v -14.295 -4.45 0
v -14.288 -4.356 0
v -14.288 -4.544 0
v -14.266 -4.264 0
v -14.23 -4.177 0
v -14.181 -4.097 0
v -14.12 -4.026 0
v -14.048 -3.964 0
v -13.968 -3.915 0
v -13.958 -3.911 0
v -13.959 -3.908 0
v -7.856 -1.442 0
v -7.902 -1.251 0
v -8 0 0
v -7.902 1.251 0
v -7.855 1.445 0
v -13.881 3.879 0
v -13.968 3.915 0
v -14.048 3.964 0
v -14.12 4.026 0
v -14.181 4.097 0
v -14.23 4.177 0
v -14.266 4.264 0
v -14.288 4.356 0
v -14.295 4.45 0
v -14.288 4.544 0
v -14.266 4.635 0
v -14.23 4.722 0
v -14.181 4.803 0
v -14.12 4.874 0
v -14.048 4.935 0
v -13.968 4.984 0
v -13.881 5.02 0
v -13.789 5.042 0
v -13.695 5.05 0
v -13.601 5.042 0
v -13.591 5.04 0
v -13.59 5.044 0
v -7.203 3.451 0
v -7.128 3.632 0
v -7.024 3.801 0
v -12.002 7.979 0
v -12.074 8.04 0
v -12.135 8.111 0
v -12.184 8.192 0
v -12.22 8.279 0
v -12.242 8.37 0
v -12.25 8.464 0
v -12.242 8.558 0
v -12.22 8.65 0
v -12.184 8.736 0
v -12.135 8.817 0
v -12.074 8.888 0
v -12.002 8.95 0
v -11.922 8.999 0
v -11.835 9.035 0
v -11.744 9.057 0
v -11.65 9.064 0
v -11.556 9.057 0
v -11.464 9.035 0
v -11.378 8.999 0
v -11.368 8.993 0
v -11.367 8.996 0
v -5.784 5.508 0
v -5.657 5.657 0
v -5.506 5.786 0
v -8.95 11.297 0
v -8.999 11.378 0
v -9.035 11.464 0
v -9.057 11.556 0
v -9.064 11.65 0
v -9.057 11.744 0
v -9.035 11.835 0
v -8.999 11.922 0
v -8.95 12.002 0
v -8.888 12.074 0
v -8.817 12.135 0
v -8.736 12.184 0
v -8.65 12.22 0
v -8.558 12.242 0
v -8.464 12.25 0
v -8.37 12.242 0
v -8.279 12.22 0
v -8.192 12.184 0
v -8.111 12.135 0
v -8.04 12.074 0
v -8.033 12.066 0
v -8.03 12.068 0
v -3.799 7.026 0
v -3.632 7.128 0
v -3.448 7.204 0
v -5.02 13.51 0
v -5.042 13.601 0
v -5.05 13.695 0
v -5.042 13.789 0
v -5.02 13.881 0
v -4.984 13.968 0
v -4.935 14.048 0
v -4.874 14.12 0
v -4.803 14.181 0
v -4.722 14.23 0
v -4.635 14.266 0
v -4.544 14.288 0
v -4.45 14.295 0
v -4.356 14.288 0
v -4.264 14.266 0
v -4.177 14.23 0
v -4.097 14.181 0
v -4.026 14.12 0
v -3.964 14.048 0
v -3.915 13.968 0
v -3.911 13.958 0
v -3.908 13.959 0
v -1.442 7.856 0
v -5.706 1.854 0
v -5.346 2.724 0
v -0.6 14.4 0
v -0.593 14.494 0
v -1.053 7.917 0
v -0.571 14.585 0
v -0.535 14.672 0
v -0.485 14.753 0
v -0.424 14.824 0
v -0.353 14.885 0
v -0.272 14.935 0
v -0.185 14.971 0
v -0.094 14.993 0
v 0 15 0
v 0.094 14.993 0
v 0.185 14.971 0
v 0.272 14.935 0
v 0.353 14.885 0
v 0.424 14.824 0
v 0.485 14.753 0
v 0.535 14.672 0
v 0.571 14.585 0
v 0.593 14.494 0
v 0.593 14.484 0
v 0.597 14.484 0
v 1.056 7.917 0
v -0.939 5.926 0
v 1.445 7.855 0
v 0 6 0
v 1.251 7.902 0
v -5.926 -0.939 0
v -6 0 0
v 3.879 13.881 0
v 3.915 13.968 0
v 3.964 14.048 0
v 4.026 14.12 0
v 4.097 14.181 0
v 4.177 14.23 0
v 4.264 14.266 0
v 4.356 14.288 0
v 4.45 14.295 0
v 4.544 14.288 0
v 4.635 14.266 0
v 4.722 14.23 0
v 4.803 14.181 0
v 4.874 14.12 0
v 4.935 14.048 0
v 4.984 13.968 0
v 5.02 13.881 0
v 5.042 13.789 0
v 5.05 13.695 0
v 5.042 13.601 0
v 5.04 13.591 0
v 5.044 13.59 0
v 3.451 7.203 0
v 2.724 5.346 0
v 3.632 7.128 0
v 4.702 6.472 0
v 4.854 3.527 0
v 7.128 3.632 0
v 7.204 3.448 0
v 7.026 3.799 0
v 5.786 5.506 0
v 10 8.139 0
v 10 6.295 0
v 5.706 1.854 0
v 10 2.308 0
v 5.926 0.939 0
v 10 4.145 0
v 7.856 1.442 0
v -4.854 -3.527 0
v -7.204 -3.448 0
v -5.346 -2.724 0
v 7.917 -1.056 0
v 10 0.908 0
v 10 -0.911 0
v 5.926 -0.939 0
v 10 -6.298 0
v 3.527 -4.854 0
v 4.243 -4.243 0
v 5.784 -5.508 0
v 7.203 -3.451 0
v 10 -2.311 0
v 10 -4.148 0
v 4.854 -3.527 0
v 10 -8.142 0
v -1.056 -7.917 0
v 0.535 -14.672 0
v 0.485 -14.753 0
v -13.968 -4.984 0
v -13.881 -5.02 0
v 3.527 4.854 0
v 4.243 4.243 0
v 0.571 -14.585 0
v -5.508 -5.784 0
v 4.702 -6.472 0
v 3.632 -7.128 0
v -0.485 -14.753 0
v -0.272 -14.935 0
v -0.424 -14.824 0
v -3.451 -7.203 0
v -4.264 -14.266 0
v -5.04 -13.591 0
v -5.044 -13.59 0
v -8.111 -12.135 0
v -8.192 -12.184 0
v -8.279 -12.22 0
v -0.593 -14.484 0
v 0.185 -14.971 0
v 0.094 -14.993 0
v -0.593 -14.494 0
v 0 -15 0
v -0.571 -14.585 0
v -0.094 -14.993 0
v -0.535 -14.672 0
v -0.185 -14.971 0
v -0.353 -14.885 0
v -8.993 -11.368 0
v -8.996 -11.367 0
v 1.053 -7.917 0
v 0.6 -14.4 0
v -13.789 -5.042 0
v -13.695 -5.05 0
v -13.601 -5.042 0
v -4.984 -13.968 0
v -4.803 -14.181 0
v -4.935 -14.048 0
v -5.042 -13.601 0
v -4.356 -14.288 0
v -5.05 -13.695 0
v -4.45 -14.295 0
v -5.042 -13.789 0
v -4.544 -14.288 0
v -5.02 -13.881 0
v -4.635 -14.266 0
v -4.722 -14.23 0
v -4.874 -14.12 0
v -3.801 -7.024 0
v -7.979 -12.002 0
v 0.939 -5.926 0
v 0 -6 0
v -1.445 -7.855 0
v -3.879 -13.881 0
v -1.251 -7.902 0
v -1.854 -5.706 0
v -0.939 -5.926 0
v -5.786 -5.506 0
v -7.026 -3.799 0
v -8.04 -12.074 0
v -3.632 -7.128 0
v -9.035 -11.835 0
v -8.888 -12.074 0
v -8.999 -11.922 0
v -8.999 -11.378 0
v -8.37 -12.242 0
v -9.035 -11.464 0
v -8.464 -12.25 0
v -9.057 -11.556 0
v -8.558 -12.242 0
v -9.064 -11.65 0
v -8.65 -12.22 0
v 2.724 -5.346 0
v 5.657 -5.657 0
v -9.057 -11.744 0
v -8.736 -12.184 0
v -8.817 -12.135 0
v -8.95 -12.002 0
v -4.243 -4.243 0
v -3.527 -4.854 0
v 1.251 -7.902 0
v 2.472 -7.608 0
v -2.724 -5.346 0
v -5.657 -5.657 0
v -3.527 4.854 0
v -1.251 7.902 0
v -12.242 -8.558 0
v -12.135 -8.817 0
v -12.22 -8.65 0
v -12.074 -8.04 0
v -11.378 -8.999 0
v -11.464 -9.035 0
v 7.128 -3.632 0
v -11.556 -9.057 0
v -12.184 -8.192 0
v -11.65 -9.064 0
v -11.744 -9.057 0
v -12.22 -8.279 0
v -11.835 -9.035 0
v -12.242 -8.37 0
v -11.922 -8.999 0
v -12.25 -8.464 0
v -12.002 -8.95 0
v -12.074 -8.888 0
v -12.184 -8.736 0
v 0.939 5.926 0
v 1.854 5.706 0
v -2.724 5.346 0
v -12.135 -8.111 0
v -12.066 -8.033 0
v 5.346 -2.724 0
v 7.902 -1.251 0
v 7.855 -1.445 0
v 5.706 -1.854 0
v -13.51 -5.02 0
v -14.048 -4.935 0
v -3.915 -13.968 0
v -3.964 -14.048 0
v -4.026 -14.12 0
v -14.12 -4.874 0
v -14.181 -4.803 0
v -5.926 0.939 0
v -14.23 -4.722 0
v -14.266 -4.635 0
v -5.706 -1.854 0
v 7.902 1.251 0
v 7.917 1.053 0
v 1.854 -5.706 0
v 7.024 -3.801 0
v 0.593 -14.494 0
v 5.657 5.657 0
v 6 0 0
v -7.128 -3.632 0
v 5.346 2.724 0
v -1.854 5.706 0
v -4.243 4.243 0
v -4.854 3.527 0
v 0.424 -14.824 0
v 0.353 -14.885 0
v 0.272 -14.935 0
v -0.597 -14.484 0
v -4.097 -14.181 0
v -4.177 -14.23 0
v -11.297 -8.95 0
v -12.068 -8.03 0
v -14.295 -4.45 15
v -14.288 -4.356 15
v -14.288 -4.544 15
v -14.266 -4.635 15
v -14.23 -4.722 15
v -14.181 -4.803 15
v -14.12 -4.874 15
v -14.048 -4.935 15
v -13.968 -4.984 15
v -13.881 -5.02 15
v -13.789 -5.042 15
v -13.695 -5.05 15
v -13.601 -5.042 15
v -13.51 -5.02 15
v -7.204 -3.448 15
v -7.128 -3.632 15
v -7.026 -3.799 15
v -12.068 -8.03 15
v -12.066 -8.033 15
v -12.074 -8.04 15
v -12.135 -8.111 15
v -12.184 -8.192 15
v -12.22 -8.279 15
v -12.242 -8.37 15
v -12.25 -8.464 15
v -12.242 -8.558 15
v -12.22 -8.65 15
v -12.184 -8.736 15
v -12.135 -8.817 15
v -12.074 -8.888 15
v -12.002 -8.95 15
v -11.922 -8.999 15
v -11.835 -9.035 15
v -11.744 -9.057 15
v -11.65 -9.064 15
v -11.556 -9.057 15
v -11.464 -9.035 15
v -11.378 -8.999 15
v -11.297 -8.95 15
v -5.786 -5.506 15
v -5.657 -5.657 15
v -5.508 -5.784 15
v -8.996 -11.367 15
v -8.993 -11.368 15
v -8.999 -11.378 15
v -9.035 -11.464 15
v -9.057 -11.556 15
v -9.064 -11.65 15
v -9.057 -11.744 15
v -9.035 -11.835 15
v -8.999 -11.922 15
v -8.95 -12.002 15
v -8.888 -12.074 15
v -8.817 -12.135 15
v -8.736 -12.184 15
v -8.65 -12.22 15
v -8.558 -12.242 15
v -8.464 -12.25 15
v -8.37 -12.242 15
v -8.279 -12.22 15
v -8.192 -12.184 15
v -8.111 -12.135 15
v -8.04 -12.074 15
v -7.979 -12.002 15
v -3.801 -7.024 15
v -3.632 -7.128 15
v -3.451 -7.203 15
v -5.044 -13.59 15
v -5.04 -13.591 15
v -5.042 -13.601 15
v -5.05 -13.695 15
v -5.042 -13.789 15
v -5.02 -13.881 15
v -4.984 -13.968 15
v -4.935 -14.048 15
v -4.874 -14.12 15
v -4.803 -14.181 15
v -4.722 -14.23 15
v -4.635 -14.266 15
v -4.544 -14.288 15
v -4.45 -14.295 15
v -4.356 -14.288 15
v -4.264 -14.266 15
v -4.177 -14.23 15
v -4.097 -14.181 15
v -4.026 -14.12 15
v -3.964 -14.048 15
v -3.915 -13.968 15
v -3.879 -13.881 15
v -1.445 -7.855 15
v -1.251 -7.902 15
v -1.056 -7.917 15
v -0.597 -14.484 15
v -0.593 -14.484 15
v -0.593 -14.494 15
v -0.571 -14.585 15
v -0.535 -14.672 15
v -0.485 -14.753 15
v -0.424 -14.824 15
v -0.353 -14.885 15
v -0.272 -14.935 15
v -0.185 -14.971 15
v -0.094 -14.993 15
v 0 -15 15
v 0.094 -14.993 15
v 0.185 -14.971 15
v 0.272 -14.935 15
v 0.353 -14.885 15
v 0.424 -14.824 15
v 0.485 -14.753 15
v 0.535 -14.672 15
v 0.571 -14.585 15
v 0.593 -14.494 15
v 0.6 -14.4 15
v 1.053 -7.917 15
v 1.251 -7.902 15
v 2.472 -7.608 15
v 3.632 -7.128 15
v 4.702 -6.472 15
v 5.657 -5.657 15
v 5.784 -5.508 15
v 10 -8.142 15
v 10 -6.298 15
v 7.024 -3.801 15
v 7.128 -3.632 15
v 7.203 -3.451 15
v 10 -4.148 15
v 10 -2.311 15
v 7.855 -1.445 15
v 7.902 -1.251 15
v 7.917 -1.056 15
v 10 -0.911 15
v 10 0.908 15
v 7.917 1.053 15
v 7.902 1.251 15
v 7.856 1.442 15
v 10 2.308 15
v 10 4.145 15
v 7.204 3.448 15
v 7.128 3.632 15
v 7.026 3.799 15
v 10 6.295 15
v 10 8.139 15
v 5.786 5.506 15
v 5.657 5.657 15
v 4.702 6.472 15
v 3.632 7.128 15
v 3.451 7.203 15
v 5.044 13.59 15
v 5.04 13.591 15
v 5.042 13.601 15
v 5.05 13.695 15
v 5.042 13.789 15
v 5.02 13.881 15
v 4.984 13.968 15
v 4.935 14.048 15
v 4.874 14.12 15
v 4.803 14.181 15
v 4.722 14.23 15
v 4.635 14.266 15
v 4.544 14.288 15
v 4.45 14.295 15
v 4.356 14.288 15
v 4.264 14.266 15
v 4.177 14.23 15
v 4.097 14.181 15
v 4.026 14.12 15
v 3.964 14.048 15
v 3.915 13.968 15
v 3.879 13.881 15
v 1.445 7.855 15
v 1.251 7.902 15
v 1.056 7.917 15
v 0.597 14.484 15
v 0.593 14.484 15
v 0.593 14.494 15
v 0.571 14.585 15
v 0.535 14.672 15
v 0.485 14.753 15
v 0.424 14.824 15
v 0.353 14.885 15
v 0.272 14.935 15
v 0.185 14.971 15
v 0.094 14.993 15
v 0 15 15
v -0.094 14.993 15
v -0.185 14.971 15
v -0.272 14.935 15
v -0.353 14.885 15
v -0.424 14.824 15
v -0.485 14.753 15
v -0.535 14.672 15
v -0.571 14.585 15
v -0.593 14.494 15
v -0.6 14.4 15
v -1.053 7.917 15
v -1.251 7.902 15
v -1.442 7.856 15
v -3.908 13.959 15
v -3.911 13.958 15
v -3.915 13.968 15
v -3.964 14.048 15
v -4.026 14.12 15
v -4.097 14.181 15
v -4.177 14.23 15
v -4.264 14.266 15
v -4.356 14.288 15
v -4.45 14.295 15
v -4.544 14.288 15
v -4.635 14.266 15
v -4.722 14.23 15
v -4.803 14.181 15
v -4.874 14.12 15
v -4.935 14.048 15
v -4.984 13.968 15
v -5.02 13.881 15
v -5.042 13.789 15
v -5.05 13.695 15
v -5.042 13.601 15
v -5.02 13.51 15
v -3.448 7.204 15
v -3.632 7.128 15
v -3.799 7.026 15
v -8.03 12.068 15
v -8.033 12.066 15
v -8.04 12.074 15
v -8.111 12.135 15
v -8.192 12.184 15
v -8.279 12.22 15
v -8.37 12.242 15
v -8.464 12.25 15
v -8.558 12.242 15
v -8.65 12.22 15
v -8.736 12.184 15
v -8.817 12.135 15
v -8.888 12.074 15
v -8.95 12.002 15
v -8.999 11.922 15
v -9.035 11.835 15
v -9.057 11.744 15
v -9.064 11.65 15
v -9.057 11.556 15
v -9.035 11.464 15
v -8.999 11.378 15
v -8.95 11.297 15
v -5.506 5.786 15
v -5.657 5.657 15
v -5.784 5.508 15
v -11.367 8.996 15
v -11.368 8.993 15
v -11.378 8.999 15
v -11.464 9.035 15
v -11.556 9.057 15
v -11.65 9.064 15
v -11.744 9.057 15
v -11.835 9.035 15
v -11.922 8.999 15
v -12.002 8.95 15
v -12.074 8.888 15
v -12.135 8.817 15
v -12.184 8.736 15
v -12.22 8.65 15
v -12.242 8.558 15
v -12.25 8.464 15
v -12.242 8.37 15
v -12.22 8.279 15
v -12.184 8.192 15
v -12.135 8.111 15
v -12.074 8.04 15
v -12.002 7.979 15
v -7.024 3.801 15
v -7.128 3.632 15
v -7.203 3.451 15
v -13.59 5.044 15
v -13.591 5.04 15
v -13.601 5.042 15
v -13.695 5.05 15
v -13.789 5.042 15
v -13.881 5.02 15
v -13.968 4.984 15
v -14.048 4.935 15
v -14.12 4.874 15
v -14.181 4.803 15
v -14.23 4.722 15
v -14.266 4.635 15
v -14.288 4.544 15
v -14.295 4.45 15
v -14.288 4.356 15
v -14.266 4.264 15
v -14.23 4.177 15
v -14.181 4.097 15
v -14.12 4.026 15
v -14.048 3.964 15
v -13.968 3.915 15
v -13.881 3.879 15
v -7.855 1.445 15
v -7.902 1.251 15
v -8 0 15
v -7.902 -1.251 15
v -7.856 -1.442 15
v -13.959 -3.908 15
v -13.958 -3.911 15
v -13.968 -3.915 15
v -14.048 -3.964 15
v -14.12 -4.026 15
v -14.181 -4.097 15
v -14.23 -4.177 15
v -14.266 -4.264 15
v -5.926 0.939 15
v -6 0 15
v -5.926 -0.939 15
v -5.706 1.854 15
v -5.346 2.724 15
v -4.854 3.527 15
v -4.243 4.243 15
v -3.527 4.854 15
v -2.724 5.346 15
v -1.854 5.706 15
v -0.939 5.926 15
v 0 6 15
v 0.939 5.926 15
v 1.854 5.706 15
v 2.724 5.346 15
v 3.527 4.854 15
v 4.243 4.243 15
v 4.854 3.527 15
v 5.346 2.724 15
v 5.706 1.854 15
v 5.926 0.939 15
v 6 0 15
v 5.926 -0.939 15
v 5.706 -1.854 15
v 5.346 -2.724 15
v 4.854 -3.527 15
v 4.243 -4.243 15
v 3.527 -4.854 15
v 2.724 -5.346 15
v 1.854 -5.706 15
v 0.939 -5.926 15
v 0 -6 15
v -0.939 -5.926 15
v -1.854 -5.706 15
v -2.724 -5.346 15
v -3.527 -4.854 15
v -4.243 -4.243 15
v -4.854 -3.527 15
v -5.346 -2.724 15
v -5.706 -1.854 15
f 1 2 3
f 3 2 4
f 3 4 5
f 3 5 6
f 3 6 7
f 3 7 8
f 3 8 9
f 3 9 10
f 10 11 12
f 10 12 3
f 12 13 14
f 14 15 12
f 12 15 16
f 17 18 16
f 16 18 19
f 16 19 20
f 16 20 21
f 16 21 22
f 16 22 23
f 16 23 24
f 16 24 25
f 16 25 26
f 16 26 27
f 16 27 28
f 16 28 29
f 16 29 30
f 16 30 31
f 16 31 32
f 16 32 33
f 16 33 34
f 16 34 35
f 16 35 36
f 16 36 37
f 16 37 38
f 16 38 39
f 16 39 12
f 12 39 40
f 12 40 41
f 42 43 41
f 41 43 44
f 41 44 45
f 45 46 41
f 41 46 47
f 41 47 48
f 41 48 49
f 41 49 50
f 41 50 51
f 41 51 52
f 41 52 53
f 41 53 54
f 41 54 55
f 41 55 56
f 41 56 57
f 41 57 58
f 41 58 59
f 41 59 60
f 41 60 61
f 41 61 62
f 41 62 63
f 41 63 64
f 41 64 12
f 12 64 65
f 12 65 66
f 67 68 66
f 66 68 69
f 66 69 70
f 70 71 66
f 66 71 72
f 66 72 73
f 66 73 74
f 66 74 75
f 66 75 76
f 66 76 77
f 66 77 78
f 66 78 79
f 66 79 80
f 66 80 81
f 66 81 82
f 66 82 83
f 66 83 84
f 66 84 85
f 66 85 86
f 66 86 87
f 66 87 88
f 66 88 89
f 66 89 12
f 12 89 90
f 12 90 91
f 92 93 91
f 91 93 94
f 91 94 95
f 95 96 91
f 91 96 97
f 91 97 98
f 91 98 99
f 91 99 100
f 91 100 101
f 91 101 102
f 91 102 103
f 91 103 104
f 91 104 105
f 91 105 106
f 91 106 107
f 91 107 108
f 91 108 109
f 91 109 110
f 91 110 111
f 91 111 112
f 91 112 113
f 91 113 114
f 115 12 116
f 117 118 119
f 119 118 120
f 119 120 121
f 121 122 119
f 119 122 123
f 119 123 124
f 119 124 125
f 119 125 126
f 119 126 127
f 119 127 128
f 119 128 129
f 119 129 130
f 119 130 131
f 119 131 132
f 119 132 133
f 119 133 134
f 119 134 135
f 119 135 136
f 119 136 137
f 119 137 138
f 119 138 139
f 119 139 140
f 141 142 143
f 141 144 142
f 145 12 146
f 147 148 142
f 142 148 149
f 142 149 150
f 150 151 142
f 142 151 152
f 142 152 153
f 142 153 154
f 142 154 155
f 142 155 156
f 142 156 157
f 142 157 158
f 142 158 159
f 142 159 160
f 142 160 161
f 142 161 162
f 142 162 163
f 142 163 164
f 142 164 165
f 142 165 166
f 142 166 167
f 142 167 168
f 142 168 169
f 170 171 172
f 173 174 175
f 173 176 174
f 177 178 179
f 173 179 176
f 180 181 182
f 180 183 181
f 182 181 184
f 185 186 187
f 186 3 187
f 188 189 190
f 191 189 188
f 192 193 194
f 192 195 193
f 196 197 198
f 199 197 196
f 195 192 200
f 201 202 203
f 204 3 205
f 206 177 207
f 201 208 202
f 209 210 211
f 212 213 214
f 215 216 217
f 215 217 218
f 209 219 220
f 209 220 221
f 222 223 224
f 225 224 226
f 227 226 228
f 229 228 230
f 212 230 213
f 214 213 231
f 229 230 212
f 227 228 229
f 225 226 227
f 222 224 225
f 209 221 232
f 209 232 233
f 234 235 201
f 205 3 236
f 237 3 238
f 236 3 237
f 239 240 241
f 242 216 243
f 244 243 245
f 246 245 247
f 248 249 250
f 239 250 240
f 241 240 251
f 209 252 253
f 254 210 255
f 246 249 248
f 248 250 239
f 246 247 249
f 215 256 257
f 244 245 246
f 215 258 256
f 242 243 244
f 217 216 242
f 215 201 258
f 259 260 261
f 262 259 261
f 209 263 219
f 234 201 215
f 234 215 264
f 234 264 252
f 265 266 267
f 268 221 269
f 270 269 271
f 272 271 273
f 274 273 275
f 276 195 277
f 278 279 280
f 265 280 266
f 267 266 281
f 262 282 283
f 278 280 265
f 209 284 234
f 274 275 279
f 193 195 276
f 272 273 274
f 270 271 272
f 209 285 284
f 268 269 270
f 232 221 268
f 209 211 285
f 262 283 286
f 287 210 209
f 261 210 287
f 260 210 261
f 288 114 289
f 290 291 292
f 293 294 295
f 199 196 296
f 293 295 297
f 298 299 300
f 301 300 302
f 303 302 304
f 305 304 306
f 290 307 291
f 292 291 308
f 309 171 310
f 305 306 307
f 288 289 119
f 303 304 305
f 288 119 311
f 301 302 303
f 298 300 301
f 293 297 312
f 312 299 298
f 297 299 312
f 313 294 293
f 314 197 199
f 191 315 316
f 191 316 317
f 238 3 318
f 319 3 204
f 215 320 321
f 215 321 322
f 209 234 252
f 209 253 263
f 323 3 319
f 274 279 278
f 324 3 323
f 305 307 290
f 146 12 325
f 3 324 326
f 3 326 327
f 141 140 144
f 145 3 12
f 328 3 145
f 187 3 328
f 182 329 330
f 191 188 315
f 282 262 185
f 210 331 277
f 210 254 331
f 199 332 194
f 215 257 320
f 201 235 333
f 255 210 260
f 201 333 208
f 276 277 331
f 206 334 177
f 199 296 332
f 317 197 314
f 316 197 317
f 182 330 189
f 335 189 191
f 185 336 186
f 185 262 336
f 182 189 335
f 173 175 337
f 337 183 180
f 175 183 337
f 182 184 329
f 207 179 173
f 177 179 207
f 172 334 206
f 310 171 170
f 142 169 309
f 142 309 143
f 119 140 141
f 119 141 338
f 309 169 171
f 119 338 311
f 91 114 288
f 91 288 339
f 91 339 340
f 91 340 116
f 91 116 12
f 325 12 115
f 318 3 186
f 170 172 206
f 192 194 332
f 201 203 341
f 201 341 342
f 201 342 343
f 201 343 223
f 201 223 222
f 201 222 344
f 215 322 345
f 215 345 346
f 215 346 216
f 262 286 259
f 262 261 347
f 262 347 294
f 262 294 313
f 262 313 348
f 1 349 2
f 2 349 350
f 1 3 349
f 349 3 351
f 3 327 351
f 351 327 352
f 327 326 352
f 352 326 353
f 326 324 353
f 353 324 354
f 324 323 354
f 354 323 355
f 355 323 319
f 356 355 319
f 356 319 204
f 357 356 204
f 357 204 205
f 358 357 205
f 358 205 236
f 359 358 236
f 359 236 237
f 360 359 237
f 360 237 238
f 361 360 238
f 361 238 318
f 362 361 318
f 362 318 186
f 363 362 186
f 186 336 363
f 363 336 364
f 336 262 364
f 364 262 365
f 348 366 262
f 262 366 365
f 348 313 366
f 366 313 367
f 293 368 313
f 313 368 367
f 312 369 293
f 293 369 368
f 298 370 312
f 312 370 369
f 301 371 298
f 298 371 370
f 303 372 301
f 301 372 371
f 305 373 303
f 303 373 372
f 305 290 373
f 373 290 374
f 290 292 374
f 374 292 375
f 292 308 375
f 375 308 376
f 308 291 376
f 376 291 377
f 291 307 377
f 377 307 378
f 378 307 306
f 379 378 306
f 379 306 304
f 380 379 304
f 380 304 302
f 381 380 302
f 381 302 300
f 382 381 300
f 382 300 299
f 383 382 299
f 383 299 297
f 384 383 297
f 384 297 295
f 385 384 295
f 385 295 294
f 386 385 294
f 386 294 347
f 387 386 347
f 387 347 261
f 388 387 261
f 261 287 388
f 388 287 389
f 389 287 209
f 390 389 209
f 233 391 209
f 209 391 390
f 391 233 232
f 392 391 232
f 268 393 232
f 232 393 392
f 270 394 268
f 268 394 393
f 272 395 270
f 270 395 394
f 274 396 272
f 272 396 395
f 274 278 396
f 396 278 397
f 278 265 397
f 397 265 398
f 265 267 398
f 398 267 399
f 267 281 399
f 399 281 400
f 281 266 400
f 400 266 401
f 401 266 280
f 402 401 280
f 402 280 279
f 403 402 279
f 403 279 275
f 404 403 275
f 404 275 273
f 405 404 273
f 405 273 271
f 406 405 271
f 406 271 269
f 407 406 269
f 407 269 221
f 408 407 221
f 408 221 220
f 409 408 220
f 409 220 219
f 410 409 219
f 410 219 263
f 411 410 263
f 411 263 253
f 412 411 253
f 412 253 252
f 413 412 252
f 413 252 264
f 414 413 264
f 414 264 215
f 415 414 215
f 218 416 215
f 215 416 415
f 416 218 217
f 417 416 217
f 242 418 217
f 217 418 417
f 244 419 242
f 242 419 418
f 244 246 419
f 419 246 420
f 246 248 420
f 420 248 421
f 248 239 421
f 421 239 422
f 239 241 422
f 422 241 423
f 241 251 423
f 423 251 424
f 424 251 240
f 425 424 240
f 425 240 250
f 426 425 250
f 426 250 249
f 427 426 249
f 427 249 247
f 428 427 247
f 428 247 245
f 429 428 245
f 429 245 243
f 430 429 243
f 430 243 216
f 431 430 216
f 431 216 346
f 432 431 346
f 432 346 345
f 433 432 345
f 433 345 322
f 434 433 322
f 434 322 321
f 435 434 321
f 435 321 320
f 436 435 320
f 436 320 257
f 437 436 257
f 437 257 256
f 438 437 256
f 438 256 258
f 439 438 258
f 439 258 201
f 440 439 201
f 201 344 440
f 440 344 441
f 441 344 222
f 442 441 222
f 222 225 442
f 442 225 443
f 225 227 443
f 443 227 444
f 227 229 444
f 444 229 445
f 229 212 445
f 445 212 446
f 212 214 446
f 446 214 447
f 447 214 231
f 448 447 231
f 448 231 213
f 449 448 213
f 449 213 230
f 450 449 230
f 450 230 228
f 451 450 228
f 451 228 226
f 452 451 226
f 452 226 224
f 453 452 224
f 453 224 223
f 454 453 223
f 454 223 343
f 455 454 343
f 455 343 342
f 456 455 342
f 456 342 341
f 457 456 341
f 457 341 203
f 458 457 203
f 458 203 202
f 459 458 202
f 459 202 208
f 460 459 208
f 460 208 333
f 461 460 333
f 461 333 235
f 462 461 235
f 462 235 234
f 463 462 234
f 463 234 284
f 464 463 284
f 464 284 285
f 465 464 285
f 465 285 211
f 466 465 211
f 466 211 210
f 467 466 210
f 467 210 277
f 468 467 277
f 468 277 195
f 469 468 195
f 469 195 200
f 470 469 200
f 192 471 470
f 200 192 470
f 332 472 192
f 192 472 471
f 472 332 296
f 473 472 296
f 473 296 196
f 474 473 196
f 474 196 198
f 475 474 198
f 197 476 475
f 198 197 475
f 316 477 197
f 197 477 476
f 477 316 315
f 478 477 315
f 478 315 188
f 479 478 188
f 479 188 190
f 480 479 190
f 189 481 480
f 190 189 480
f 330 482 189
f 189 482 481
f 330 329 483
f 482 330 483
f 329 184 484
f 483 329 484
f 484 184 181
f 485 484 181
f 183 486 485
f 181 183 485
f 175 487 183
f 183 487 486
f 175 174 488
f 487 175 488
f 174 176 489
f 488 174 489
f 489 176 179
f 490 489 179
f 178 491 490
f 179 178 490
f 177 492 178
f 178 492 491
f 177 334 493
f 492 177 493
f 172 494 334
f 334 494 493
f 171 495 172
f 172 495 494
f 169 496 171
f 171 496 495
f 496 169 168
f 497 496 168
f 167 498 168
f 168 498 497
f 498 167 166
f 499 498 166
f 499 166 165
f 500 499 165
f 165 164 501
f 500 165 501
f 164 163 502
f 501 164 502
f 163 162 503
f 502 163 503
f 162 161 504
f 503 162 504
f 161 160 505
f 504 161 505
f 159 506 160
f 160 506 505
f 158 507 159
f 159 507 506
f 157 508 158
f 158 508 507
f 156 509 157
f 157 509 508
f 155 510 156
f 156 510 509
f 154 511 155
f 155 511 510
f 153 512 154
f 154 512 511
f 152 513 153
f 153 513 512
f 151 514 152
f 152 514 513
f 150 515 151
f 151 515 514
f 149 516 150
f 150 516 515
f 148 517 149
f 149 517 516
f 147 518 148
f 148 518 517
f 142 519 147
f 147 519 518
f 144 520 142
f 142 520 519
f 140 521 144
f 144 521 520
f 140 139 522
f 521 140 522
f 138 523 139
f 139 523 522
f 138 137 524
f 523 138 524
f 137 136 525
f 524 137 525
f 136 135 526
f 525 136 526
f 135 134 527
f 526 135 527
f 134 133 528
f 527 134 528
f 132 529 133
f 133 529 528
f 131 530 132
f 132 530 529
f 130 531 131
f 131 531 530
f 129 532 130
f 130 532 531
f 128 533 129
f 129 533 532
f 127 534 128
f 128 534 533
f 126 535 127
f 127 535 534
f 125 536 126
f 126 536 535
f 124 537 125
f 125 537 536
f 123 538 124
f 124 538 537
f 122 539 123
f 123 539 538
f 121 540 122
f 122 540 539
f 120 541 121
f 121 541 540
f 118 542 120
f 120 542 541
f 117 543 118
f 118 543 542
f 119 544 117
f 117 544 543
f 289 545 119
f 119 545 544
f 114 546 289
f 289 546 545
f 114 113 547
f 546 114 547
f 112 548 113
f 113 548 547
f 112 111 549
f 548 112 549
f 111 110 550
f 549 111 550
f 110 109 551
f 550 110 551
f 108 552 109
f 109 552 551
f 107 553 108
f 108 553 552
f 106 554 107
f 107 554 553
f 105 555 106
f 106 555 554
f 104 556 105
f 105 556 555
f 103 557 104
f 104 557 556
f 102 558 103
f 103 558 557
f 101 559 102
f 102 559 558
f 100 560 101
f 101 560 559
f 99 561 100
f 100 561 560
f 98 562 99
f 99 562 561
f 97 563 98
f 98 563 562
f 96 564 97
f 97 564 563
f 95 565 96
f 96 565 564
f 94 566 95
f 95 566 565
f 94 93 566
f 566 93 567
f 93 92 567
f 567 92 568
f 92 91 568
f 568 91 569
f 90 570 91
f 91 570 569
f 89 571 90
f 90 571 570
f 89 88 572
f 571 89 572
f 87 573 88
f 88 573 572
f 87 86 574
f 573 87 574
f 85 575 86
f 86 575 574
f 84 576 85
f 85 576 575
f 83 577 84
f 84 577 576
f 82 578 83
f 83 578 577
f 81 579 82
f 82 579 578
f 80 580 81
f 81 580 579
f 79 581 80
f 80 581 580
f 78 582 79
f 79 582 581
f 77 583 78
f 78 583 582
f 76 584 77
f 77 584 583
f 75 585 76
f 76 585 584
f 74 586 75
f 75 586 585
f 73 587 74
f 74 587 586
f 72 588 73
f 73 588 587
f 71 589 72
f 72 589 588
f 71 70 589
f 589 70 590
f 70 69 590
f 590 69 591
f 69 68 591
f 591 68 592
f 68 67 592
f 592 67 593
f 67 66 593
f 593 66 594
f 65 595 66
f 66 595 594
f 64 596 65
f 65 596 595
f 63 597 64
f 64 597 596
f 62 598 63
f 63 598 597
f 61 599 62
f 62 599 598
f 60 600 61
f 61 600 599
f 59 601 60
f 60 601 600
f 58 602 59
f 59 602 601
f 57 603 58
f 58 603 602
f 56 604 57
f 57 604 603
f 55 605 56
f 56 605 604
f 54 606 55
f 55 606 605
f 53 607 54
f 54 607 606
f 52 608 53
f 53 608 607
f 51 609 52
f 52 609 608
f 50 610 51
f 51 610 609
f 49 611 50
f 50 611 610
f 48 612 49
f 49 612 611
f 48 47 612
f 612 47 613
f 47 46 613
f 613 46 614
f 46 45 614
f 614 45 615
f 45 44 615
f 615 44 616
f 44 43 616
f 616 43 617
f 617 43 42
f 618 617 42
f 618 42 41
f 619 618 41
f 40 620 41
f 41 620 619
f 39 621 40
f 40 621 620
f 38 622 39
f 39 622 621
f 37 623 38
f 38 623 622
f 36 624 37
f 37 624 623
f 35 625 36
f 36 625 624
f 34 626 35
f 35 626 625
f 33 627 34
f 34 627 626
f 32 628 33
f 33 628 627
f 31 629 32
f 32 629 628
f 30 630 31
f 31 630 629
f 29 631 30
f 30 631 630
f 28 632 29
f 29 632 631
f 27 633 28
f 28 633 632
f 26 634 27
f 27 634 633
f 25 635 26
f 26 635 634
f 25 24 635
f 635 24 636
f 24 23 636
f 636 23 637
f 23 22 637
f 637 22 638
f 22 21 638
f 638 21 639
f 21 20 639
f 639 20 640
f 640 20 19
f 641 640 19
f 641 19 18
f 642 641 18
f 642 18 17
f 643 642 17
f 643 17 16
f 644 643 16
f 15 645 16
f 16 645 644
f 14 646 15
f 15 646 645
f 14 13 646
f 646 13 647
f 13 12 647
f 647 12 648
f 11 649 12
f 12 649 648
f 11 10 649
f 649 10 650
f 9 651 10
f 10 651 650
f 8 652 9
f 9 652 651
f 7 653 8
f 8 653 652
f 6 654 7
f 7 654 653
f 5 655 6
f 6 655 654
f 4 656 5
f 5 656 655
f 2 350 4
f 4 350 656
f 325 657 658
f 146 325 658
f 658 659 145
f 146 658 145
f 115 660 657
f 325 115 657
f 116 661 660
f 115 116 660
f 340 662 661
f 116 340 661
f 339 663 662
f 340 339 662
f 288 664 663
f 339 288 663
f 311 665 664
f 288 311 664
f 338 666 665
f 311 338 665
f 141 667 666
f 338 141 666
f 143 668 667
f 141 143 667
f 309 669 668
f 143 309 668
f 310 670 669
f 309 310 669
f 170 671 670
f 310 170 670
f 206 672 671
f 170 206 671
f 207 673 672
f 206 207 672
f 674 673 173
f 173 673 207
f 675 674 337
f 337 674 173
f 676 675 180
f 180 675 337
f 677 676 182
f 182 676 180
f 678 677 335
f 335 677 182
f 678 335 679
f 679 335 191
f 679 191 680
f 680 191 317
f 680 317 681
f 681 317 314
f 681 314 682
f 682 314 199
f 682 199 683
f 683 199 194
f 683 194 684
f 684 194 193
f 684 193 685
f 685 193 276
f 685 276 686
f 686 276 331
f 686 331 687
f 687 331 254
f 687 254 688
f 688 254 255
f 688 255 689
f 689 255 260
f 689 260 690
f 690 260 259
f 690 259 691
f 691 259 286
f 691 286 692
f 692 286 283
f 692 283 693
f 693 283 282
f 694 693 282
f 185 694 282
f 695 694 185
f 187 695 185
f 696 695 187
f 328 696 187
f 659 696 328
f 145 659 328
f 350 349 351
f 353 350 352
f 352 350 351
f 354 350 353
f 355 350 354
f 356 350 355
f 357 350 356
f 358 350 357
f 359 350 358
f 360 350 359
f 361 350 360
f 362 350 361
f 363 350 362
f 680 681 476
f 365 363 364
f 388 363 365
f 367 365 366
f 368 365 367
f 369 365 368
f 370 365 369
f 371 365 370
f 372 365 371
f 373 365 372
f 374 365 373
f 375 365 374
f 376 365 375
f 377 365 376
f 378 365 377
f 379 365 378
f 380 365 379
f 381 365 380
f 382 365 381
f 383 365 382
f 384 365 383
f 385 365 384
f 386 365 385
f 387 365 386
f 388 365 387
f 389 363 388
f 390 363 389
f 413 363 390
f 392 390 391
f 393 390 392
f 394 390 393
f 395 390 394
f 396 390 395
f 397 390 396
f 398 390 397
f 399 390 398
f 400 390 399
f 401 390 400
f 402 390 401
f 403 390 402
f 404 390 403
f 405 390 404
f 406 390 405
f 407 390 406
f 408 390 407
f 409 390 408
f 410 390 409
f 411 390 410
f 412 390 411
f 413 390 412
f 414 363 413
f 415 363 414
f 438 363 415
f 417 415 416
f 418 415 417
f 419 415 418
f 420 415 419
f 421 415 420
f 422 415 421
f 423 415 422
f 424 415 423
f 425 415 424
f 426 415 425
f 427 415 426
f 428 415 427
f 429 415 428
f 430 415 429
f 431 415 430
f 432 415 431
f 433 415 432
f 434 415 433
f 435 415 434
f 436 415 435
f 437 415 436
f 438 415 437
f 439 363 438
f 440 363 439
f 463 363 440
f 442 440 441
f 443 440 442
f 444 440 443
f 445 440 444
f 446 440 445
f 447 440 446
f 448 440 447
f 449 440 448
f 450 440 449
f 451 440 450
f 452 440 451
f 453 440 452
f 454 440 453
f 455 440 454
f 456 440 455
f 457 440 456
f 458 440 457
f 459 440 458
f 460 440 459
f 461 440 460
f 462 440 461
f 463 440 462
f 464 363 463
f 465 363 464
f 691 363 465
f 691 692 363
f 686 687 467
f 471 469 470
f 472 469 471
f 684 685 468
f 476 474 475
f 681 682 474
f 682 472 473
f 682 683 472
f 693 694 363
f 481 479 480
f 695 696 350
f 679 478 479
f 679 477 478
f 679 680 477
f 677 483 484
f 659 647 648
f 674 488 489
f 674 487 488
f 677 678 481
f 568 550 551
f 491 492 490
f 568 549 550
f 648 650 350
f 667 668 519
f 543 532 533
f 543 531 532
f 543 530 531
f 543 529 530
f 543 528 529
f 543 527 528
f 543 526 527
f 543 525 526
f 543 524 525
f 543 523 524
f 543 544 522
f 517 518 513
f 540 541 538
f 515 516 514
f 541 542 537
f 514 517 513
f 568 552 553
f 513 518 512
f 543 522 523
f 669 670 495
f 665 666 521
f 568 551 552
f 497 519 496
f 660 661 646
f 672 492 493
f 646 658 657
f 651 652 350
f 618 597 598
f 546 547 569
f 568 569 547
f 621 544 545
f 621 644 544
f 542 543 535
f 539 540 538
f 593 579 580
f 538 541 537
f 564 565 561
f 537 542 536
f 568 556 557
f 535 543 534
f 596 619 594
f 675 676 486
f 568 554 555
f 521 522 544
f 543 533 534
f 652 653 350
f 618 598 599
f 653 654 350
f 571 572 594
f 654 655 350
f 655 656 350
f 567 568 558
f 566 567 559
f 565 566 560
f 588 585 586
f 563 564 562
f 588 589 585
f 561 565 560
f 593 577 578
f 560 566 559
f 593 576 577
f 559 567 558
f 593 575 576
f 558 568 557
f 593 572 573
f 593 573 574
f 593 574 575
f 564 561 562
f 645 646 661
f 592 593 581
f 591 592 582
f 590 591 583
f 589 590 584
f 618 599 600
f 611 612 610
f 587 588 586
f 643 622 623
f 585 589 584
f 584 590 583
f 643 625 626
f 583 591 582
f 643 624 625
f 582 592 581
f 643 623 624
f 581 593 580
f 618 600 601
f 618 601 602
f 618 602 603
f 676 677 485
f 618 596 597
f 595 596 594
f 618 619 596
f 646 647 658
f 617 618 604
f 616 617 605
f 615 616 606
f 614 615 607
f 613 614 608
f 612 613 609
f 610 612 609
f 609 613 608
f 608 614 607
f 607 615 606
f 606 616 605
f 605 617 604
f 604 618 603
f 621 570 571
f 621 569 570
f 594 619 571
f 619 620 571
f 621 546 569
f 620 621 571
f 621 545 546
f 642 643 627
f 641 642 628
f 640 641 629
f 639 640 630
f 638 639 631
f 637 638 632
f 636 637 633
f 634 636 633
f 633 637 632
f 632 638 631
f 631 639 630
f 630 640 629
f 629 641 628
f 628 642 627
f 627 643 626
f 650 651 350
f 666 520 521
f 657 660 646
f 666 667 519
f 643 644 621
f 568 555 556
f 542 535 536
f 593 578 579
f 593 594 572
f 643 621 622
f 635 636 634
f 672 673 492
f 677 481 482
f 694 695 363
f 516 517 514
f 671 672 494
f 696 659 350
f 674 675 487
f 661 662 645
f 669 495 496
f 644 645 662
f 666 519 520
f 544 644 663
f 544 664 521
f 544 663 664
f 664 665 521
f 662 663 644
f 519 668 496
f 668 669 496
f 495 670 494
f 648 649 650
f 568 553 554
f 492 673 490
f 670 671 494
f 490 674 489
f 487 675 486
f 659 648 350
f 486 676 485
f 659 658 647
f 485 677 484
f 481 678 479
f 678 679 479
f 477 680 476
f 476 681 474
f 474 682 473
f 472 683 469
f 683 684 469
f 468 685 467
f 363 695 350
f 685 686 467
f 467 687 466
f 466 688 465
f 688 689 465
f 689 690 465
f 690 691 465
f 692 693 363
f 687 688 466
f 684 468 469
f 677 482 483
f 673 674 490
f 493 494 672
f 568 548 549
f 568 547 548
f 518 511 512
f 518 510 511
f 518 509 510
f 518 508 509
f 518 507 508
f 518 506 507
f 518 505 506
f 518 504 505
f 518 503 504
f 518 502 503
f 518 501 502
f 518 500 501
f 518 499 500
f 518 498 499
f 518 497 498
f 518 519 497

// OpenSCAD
$fn=40;

n=20;
h=15;
r1=6;
r12=8;
r2=15;
t=1.2;
t1=t/2;
a=4;

v=[0,1,2,3,4,6,7,8,9,10,13,14,15,16,17,19];

difference() {

difference() {
union() {
cylinder(r=r12,h=h);
for(i=[0:n])
for(j=v)
if(i==j)
rotate([0,0,360/n*i]){
	translate([-t1,0,0])
translate([0,r2-t1,0])rotate([0,0,a])translate([0,-r2+t1,0])
cube([t,r2-t1,h]);

	translate([-t1,0,0])
translate([0,r2-t1,0])rotate([0,0,-a])translate([0,-r2+t1,0])
cube([t,r2-t1,h]);

	translate([0,r2-t1,0])cylinder(r=t1,h=h);
}
}
translate([0,0,-1])cylinder(r=r1,h=h+2);
}

translate([10,-15,0])cube([15,30,15]);
}
